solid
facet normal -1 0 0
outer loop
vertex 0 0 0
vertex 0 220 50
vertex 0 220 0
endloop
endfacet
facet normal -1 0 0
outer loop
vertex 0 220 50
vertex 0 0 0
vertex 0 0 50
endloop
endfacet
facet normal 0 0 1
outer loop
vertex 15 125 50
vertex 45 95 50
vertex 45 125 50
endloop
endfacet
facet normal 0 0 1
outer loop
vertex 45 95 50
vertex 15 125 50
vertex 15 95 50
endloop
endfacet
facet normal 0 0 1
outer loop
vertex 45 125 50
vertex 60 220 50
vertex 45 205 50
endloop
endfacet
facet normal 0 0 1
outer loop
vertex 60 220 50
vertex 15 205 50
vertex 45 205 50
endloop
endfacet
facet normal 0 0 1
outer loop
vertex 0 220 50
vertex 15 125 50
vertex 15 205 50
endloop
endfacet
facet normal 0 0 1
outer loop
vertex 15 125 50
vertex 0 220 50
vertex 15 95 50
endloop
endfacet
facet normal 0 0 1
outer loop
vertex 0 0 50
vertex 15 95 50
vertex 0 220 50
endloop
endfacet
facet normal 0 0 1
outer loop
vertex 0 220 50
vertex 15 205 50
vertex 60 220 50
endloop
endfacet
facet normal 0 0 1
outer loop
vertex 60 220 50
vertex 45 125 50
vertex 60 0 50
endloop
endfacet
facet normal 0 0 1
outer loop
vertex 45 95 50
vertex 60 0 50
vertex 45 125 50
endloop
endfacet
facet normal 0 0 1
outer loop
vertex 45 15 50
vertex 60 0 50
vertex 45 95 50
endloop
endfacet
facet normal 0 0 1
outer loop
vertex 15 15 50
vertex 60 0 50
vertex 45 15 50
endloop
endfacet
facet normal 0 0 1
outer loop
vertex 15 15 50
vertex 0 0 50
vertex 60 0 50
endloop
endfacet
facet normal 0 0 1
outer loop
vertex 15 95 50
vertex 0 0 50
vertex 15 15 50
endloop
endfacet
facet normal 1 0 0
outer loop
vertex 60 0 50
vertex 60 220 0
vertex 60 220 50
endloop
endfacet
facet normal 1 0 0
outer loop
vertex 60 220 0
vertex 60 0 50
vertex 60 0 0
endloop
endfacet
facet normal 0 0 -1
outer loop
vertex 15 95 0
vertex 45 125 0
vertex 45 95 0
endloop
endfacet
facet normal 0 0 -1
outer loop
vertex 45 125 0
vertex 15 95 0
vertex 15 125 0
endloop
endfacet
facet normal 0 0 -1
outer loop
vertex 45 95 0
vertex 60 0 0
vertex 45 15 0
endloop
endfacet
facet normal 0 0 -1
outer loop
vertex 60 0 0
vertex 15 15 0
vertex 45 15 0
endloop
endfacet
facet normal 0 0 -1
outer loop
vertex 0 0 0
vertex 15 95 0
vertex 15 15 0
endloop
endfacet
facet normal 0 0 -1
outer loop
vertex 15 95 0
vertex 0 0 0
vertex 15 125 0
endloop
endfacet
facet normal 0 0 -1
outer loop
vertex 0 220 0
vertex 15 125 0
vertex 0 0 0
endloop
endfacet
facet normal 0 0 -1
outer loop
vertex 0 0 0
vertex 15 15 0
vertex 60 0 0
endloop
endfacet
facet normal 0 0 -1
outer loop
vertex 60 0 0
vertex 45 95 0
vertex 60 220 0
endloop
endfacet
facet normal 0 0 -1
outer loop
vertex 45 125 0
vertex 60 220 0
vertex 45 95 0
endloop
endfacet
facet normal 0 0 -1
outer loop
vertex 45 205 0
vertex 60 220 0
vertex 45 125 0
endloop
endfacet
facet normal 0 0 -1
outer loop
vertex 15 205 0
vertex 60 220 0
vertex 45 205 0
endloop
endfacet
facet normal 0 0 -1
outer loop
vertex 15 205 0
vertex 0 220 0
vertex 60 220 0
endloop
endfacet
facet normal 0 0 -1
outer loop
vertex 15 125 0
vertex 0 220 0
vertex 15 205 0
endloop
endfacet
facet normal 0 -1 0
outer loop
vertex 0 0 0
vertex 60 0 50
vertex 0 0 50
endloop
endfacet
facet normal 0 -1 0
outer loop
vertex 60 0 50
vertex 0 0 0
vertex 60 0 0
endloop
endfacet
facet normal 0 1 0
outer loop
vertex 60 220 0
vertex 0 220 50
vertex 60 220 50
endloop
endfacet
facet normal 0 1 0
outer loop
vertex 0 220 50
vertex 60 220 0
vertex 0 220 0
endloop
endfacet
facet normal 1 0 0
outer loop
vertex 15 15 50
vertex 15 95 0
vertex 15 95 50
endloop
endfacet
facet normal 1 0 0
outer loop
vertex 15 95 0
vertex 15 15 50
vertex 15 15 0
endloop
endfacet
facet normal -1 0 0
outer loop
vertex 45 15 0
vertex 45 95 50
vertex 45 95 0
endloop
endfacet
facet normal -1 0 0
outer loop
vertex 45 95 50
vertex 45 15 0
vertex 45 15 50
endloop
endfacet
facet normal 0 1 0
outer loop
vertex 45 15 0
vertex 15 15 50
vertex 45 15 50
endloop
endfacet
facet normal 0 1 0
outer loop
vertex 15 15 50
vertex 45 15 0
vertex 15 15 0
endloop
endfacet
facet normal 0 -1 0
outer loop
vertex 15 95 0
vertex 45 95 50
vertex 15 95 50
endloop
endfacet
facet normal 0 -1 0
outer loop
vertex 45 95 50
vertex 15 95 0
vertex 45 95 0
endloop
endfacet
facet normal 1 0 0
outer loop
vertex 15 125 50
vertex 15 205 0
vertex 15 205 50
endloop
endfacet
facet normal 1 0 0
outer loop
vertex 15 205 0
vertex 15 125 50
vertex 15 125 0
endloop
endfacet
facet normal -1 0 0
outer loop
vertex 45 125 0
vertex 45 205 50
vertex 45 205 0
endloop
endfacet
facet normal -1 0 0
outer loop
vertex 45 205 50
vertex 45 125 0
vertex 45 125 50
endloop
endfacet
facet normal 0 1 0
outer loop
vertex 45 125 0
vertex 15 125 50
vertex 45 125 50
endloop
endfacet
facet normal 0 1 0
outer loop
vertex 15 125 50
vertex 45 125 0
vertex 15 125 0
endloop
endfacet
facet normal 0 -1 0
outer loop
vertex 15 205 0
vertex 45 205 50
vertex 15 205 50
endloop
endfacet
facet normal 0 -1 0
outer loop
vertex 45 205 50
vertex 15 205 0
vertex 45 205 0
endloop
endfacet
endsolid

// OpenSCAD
height=50;
width=60;
depth=220;
holeHeight=height;
holeWidth=30;
holeDepth=80;

difference() {
    cube([width,depth,height]);
    translate([(width-holeWidth)/2,(depth/2-holeDepth)/2,0]) {
        cube([holeWidth,holeDepth,holeHeight]);
    }
    translate([(width-holeWidth)/2,(depth*1.5-holeDepth)/2,0]) {
        cube([holeWidth,holeDepth,holeHeight]);
    }
}
